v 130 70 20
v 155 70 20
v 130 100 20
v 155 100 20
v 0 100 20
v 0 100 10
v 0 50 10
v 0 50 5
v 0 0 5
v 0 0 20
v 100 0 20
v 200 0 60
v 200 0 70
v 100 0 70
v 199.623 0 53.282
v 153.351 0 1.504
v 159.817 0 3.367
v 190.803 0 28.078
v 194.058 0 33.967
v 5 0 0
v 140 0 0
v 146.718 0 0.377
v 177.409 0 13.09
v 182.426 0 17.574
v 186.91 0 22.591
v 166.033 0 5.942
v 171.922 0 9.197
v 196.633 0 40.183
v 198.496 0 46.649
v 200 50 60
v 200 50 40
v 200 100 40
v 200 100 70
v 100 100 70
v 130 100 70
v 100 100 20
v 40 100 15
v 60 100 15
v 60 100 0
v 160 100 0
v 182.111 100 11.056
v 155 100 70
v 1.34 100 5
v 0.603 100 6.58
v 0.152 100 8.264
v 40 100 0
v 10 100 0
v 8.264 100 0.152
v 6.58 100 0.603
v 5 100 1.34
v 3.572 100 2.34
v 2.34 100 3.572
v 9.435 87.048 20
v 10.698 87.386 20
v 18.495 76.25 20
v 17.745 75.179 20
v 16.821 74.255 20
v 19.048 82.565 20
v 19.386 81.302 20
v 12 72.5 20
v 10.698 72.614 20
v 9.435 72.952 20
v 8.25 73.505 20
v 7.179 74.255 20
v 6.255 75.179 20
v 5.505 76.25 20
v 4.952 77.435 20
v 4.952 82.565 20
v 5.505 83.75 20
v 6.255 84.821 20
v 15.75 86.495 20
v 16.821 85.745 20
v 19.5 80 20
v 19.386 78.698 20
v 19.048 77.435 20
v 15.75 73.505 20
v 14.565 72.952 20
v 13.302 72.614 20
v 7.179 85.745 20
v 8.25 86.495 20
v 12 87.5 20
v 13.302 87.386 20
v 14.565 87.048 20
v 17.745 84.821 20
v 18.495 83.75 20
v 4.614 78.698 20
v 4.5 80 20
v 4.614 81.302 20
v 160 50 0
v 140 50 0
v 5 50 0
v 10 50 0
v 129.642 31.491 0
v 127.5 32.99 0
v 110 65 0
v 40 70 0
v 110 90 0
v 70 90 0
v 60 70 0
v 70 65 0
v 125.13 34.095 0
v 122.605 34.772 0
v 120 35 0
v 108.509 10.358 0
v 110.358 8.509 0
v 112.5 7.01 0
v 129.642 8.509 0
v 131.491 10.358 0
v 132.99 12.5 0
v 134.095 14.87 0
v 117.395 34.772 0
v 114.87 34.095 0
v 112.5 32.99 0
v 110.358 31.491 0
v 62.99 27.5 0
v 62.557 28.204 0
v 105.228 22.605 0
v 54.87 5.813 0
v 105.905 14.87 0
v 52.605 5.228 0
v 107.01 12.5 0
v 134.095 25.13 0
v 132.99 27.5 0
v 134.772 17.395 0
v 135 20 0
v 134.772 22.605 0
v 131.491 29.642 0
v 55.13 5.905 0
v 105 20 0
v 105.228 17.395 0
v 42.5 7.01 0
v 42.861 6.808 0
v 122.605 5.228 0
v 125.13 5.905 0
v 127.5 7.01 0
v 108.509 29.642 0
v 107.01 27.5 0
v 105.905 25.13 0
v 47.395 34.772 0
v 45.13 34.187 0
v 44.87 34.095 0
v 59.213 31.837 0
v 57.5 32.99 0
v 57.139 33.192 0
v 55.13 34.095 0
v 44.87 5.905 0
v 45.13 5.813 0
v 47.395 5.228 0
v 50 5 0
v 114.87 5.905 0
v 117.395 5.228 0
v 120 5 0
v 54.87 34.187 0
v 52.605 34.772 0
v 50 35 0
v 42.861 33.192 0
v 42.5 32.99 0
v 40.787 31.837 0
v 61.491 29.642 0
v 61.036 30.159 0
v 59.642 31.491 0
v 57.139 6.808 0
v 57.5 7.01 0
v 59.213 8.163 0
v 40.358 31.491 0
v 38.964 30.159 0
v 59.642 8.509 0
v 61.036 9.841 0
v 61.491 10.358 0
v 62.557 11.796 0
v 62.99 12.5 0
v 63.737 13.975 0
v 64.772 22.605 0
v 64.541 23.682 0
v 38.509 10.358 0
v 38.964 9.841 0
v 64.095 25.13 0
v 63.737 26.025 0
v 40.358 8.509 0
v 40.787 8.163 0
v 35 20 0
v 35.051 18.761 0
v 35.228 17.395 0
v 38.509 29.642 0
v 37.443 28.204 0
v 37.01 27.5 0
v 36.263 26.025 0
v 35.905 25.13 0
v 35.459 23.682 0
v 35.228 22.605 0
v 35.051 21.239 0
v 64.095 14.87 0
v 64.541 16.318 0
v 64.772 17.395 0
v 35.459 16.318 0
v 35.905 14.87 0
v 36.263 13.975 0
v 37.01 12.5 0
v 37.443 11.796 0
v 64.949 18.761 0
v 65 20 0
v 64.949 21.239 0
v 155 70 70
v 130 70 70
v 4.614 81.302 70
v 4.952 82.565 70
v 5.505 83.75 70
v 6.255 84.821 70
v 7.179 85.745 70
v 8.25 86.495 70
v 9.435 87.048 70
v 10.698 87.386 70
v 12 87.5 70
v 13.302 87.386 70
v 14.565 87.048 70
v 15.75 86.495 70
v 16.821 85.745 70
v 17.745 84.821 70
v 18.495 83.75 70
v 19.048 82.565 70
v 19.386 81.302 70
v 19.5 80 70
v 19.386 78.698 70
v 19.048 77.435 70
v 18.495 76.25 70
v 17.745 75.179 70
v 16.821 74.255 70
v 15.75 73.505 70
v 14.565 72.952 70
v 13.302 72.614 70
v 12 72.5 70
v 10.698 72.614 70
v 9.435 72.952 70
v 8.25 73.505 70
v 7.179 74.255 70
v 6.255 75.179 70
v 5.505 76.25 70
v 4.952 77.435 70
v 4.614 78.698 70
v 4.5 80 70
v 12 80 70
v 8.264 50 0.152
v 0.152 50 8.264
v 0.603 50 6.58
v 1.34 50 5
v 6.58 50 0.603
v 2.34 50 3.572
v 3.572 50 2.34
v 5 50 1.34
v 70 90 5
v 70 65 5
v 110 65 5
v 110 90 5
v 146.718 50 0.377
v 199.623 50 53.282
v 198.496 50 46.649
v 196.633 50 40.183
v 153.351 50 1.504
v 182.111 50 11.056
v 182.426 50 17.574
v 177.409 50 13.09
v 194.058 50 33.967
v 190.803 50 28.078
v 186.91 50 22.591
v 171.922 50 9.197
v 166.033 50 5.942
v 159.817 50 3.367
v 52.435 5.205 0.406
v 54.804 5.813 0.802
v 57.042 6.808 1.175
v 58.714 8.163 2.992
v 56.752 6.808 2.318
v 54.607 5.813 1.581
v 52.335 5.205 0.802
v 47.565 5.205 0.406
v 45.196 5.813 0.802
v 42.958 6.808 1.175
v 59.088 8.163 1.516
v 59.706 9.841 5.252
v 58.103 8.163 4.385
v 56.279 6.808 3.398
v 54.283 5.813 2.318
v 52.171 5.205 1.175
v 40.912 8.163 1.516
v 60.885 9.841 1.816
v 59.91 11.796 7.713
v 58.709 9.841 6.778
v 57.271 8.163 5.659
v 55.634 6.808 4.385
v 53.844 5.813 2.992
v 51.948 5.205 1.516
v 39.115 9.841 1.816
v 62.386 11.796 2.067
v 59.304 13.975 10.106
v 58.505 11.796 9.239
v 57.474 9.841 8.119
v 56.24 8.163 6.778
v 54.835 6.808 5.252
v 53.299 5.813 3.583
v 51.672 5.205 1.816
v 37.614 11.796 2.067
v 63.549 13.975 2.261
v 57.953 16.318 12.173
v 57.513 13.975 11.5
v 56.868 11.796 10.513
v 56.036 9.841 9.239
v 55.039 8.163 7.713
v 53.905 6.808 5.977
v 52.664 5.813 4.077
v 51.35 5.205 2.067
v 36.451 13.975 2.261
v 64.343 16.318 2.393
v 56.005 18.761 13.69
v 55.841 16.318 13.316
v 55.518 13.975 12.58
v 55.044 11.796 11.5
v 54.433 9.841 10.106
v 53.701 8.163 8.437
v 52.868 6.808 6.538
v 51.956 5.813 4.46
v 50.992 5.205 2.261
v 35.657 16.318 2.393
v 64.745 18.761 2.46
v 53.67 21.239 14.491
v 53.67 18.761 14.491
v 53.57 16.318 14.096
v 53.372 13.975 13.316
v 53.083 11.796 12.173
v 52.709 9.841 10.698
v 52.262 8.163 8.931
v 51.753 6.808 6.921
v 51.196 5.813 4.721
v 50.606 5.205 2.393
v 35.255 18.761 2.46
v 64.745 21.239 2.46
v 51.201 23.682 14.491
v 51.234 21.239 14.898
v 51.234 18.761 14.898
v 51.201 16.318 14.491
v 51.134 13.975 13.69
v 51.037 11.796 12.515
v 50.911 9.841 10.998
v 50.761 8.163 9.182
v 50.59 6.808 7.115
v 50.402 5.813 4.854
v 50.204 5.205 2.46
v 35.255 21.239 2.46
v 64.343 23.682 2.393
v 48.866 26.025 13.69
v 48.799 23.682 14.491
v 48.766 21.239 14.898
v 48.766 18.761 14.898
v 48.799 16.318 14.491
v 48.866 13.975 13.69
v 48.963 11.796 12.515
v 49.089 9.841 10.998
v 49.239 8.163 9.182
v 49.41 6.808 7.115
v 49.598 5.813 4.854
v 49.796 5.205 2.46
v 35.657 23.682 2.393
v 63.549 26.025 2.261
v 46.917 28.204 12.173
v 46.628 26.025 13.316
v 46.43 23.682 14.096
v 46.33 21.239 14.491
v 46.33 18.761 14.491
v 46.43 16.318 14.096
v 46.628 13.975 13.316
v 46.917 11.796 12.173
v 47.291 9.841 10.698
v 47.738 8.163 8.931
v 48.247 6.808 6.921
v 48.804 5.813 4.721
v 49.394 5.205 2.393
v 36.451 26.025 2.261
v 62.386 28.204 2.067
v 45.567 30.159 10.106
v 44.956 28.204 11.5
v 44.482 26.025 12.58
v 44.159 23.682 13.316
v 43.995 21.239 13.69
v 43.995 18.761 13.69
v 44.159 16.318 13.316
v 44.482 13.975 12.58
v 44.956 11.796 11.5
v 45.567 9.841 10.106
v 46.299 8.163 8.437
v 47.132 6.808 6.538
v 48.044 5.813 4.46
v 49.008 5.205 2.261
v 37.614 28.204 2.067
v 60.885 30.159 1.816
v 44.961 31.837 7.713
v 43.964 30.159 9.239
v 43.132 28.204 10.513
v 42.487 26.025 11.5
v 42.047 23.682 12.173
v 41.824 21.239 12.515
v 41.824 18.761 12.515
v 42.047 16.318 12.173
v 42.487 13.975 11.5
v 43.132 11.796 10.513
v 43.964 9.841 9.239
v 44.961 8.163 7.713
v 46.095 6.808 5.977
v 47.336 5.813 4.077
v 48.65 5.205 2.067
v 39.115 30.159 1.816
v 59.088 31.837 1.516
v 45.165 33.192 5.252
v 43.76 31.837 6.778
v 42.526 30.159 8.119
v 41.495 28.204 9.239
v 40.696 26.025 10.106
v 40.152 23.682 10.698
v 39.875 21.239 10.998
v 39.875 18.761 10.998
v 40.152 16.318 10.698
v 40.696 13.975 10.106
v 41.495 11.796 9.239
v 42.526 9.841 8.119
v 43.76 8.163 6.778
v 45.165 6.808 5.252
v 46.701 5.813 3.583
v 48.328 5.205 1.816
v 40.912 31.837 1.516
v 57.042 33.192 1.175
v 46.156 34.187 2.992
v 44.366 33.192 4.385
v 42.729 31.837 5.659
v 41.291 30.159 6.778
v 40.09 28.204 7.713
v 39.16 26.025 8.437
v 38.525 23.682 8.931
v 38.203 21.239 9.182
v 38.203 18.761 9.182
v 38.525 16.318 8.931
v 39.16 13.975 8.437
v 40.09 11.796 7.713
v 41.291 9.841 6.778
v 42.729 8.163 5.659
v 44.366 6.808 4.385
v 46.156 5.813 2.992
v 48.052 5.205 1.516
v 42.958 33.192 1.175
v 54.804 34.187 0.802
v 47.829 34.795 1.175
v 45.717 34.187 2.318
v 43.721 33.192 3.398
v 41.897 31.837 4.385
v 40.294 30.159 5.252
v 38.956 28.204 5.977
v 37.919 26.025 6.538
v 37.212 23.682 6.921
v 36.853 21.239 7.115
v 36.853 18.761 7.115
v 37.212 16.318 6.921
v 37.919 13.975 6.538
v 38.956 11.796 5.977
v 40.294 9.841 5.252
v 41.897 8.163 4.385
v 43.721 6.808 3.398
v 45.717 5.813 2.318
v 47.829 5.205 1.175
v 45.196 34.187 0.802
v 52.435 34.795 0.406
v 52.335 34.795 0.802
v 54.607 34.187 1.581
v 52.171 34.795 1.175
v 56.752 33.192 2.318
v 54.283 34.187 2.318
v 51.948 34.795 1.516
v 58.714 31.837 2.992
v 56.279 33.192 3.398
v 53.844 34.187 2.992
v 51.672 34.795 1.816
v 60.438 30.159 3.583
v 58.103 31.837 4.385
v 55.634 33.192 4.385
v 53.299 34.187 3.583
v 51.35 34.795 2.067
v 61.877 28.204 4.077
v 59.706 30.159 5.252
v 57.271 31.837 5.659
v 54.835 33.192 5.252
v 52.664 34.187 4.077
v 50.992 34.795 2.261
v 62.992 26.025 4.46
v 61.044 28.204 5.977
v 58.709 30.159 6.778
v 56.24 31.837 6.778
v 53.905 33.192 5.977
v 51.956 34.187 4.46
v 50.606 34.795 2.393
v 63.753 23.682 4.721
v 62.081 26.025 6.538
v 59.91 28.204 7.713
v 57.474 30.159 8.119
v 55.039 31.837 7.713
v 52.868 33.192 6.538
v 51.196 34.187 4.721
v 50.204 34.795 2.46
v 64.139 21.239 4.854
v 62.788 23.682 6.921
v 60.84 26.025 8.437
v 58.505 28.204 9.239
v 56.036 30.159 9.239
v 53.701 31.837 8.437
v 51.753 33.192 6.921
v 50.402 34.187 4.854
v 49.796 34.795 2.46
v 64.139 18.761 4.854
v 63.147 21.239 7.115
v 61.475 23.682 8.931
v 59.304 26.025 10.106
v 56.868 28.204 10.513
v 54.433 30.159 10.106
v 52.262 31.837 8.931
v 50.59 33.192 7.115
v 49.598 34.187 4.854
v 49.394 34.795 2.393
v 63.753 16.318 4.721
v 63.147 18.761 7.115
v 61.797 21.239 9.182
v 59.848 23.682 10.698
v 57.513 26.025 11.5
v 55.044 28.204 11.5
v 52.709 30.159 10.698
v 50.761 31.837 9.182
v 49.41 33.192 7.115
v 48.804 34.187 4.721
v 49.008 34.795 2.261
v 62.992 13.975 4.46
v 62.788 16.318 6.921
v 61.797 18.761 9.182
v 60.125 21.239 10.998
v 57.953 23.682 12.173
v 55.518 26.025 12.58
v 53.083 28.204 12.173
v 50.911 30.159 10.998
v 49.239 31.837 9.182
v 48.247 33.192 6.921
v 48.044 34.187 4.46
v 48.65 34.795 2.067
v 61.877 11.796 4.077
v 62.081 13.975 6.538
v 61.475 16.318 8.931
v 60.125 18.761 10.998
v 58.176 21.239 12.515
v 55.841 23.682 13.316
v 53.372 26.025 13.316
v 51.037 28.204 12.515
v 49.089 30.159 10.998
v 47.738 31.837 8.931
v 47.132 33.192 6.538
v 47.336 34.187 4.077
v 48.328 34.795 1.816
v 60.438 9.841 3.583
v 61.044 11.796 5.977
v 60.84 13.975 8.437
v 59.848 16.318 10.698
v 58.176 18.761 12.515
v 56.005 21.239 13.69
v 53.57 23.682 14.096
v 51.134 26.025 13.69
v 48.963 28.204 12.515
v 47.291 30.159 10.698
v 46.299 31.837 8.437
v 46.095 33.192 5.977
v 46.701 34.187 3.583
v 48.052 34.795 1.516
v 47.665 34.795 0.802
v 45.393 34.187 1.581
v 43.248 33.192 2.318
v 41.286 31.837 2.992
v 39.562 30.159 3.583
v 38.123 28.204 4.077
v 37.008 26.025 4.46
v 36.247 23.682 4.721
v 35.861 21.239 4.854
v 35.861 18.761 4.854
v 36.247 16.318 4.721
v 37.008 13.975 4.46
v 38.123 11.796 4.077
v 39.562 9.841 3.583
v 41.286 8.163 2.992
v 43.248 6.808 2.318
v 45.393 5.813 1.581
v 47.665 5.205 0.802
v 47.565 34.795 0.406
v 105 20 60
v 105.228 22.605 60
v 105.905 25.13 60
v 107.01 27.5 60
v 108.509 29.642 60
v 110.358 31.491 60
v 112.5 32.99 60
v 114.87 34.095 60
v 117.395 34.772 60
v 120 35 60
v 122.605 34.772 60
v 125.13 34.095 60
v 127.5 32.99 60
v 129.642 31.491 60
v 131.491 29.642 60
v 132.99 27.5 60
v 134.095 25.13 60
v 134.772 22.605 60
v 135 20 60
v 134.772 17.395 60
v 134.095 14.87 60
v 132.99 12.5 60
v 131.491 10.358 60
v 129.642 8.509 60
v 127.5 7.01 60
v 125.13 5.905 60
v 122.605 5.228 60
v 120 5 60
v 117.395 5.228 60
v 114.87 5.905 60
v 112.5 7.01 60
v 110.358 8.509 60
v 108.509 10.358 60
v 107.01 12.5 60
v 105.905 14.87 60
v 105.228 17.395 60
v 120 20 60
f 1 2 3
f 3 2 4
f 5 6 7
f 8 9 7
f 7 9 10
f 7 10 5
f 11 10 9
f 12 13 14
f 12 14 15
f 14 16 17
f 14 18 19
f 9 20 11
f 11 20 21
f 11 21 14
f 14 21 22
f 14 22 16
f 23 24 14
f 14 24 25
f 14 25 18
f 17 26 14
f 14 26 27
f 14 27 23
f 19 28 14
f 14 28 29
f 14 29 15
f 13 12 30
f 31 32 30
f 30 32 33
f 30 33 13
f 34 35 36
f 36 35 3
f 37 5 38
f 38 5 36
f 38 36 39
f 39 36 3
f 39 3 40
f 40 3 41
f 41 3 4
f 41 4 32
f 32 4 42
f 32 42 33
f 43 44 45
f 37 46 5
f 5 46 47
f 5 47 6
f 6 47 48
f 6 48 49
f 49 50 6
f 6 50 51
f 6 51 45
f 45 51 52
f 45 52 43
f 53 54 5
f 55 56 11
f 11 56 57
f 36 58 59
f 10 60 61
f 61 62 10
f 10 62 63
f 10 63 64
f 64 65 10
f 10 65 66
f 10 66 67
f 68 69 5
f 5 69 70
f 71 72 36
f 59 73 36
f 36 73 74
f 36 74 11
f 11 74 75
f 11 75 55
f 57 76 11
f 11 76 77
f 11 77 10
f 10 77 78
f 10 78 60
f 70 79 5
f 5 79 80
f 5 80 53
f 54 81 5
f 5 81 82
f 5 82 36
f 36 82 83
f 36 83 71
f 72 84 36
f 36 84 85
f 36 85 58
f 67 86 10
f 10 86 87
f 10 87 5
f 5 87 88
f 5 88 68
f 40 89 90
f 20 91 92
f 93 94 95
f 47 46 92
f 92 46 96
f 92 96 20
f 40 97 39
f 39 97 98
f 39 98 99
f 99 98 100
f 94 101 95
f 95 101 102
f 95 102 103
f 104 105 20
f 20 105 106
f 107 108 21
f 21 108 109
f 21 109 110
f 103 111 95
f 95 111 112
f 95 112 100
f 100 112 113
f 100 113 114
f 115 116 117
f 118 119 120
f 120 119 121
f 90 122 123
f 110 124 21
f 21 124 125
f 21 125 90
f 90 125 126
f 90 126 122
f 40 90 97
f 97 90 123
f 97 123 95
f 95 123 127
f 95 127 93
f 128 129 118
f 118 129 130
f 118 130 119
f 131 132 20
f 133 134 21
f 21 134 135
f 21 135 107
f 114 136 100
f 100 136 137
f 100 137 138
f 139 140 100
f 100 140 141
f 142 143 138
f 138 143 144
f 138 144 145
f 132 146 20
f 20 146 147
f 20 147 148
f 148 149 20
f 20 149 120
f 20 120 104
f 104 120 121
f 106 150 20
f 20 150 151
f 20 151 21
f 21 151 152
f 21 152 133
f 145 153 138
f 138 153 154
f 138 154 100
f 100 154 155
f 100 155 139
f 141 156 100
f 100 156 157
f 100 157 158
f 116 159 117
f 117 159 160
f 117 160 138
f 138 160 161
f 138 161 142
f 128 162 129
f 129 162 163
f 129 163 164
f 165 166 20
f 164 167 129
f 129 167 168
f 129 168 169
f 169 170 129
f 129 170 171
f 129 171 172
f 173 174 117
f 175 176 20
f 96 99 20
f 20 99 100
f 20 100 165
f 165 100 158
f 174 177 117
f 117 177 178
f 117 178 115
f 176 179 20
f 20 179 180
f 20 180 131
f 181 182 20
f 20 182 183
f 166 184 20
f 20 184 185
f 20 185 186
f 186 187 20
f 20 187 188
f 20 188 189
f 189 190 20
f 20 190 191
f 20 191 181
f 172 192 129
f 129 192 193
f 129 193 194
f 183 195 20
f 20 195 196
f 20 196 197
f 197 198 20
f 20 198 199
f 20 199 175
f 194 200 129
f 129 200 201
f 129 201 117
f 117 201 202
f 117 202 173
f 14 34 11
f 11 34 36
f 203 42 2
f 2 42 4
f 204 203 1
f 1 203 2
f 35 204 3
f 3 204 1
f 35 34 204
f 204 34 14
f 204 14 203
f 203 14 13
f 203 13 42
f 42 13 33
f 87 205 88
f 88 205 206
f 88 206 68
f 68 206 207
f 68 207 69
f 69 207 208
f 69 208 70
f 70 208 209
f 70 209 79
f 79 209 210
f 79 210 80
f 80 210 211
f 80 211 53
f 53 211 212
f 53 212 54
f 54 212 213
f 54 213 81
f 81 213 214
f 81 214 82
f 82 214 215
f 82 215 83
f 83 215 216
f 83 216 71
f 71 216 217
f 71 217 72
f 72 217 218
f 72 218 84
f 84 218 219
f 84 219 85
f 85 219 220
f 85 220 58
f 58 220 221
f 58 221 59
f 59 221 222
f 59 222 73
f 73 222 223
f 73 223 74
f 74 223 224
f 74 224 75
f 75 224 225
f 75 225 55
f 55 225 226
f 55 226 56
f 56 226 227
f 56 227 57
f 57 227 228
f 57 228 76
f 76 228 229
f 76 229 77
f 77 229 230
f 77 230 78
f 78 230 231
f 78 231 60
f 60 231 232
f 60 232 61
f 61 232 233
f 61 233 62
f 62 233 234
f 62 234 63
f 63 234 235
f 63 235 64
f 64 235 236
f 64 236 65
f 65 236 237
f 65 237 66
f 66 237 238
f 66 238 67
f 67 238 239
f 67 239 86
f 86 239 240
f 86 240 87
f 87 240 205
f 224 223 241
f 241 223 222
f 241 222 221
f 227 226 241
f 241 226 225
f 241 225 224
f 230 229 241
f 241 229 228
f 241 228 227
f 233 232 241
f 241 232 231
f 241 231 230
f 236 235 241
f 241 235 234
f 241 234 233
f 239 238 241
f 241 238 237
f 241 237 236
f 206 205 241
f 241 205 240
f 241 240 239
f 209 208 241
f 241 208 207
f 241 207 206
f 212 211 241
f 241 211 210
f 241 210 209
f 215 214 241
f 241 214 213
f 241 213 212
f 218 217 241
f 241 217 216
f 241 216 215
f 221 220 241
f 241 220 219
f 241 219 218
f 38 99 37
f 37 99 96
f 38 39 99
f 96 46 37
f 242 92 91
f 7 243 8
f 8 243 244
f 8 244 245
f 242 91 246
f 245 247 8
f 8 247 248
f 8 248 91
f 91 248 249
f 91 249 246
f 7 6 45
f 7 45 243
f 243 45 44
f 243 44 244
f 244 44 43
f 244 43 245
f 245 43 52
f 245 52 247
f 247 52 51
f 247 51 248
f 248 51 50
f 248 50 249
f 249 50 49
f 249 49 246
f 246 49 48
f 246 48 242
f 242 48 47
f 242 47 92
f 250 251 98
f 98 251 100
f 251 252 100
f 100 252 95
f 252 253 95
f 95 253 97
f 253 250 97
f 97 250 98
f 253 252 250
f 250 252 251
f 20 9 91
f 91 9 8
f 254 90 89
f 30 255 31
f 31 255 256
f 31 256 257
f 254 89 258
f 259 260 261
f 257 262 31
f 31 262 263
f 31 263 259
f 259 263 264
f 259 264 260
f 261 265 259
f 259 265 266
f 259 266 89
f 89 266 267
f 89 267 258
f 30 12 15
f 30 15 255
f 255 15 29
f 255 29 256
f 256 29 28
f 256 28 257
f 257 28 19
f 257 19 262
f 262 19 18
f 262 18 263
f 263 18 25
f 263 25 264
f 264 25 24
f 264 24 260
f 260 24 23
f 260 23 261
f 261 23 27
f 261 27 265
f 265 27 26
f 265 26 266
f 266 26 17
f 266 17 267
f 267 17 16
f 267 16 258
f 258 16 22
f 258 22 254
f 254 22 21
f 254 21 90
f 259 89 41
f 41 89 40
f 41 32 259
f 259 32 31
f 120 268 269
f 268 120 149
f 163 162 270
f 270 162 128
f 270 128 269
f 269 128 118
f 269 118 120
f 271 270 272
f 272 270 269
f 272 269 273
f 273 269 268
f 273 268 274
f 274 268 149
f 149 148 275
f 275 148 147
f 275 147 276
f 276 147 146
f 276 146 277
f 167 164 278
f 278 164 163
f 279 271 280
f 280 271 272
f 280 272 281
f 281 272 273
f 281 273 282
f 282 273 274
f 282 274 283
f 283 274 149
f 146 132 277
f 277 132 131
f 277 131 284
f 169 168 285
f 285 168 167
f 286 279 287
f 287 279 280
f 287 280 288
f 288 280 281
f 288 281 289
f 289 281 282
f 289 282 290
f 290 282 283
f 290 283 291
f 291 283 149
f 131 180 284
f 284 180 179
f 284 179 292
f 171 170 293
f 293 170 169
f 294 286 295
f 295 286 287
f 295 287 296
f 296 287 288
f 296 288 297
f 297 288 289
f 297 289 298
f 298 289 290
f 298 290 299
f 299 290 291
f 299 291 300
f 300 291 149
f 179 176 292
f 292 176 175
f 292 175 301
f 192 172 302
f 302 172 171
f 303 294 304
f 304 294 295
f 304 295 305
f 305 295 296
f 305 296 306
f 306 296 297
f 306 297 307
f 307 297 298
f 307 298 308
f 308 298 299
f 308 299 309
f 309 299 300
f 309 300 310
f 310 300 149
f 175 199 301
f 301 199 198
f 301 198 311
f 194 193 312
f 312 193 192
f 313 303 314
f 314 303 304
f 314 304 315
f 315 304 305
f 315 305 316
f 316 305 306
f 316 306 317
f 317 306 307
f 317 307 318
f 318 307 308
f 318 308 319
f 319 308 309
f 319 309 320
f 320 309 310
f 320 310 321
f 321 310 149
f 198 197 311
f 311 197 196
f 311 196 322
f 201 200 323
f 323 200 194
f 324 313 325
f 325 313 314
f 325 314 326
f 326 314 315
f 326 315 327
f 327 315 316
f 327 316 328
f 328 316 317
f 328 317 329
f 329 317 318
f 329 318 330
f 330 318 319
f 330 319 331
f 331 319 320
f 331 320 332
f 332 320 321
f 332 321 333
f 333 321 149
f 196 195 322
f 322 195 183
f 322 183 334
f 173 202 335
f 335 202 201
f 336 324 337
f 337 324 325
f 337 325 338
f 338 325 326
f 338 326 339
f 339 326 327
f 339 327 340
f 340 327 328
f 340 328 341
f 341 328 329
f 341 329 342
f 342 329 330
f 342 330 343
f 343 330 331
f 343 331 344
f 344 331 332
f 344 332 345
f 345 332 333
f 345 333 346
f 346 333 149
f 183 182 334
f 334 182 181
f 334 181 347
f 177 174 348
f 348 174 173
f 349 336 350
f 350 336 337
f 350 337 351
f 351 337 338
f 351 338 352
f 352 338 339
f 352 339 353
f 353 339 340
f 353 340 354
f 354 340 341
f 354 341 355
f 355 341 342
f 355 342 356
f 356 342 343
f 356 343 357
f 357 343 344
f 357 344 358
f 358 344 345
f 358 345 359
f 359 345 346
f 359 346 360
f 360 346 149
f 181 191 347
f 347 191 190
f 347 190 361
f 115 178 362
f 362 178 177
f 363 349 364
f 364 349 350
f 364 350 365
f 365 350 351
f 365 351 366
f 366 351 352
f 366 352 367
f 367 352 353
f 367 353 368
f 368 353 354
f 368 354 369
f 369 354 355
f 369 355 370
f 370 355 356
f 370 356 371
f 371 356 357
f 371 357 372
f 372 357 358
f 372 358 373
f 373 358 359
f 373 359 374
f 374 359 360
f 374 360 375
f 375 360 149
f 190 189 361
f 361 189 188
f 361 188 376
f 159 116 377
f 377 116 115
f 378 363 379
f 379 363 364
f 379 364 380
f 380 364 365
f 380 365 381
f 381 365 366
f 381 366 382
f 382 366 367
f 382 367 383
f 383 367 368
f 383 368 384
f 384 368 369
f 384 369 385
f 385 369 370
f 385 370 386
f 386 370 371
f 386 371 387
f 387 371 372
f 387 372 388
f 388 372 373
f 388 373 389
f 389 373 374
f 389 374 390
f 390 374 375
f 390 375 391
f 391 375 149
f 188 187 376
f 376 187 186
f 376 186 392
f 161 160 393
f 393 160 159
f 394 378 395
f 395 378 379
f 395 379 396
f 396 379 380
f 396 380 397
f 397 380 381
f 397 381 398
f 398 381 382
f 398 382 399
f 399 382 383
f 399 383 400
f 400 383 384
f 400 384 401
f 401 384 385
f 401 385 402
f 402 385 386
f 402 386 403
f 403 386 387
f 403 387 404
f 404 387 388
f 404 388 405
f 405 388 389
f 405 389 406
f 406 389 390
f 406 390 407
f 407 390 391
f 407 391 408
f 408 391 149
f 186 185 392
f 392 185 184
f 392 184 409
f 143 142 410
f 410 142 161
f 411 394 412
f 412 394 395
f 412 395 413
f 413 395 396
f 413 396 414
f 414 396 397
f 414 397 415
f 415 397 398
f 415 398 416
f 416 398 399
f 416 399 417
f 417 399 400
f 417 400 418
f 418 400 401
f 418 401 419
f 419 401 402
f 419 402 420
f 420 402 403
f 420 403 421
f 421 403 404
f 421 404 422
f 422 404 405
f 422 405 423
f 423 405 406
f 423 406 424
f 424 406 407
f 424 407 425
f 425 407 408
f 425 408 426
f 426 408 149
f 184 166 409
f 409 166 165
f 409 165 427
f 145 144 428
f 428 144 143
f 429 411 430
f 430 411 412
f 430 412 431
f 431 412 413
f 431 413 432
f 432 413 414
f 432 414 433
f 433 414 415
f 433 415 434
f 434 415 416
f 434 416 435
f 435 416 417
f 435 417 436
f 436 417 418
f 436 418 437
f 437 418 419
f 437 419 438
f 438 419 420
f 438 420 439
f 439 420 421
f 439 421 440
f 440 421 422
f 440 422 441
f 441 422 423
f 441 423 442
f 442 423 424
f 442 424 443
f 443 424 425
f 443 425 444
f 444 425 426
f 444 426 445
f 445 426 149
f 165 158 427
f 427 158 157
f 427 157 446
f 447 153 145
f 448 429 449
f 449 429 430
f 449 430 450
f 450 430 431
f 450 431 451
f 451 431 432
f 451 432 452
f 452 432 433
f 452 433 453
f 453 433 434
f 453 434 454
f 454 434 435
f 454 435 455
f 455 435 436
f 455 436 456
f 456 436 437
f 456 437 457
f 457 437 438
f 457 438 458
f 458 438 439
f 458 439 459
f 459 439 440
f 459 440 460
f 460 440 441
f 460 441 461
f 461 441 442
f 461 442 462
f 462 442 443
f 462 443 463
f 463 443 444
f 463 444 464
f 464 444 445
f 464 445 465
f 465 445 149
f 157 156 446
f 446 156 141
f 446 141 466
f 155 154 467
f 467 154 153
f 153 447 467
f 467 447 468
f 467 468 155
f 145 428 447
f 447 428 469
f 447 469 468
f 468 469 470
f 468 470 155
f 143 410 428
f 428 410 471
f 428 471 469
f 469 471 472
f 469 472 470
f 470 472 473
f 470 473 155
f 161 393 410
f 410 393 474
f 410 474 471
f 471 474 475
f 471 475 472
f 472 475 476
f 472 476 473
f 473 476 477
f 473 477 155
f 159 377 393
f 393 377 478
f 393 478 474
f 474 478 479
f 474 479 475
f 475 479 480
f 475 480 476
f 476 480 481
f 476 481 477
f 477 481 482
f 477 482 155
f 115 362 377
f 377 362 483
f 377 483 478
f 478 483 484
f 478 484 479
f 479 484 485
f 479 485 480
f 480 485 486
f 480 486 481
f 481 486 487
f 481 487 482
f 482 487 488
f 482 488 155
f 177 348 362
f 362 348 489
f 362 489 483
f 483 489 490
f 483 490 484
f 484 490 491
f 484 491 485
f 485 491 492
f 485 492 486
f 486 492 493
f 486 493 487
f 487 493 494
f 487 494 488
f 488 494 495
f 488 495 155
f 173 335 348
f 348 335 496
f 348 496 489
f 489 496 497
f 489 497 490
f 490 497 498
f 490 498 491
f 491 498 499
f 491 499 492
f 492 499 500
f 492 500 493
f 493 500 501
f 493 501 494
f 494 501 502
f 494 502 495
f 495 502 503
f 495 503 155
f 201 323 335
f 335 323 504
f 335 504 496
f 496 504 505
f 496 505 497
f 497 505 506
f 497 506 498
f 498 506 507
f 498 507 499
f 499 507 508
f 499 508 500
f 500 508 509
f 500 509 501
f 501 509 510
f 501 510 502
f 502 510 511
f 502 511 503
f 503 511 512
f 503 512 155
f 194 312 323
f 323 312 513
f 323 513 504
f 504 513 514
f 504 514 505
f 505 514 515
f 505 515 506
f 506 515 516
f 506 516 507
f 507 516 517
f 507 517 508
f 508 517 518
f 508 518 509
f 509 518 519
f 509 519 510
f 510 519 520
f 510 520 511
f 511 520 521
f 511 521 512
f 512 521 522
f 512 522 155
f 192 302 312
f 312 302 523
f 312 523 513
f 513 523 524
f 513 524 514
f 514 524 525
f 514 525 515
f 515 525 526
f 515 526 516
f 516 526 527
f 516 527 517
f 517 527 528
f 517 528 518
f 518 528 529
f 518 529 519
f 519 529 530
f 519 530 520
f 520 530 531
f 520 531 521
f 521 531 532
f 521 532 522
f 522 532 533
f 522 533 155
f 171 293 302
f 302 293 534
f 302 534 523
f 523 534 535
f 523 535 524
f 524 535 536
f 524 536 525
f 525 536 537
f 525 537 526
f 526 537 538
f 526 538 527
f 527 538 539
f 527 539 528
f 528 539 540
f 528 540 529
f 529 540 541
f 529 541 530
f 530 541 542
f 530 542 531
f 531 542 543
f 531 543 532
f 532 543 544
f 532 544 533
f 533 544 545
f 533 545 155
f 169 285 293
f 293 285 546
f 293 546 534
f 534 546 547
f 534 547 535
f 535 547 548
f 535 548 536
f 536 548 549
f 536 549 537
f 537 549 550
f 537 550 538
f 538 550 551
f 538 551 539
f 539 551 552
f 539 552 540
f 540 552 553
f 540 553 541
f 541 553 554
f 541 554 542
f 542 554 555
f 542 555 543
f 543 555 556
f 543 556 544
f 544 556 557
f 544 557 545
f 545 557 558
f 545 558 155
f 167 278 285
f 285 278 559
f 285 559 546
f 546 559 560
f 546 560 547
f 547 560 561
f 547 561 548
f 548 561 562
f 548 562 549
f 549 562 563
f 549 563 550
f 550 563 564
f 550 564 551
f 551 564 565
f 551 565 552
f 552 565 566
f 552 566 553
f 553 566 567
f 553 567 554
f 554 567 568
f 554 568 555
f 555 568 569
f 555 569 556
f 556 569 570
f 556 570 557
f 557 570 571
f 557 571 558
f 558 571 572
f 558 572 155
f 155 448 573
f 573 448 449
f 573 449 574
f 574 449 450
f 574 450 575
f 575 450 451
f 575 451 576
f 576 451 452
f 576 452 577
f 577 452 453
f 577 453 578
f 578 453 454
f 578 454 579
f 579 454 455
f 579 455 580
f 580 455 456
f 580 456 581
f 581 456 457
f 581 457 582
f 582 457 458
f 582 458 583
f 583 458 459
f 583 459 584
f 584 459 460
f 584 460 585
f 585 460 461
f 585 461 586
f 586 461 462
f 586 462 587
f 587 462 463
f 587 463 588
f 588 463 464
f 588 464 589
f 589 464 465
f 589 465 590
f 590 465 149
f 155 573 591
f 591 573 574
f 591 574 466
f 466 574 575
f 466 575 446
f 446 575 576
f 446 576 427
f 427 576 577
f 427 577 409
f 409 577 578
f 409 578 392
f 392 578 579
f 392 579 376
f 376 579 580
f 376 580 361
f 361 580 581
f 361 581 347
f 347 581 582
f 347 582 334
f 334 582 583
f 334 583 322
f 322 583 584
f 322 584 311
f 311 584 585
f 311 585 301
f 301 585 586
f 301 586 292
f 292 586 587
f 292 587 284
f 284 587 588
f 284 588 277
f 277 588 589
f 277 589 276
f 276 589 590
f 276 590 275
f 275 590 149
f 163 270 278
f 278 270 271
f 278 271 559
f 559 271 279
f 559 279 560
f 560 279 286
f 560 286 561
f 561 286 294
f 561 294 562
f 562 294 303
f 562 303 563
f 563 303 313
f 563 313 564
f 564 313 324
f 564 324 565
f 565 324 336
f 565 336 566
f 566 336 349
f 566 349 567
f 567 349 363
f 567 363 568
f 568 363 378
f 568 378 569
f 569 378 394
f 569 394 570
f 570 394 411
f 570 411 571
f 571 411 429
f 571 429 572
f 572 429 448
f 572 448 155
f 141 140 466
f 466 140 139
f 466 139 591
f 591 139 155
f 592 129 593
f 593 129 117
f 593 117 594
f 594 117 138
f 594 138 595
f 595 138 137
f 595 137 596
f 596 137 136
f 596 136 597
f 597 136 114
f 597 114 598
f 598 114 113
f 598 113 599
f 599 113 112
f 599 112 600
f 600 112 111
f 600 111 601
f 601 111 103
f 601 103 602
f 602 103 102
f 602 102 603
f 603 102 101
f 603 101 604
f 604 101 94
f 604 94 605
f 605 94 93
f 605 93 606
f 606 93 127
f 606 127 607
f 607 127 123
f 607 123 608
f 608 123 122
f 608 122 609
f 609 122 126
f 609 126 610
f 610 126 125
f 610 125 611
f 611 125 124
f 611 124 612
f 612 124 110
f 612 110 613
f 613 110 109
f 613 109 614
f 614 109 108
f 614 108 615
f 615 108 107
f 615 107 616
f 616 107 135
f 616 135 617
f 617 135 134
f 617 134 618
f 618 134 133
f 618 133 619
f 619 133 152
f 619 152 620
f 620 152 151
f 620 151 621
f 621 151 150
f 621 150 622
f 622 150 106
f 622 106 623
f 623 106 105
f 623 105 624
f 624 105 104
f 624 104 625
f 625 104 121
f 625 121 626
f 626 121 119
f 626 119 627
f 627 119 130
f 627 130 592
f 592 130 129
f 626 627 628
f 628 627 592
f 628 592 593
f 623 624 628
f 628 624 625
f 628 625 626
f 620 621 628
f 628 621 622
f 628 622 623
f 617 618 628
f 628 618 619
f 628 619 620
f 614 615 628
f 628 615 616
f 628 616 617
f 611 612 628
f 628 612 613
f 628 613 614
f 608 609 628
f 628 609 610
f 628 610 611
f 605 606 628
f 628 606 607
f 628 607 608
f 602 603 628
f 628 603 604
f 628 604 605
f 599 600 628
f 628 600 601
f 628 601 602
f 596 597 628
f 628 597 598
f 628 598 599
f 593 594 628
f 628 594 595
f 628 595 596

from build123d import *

# Parameters (mm, degrees)
SKICA1_W                 = 200
SKICA1_H                 = 100
P_IDAT_VYSUNUT_M1_DEPTH  = 20
P_IDAT_VYSUNUT_M2_DEPTH  = 50
SKICA7_R                 = 7.5
P_IDAT_VYSUNUT_M3_DEPTH  = 50
ODEBRAT_VYSUNUT_M3_DEPTH = 10
ZAOBLIT1_START           = 50
ZAOBLIT1_DEPTH           = 51
SKICA9_W                 = 40
SKICA9_H                 = 25
ODEBRAT_VYSUNUT_M4_DEPTH = 5
CHAMFER2_SIZE            = 5
FILLET2_DEPTH            = 50
CHAMFER3_SIZE            = 40
CHAMFER3_SIZE2           = 20
CHAMFER4_SIZE            = 20
SKETCH3_R                = 15
CUT_EXTRUDE2_DEPTH       = 60


with BuildPart() as part:
    # Skica1 → Přidat vysunutím1 (new body)
    with BuildSketch(Plane.XY):
        with Locations((100, 50)):
            Rectangle(SKICA1_W, SKICA1_H)
    extrude(amount=P_IDAT_VYSUNUT_M1_DEPTH)

    # Skica2 → Přidat vysunutím2 (add)
    with BuildSketch(Plane.XY.offset(20)):
        Polygon((100, 0), (200, 0), (200, 100), (155, 100), (155, 70), (130, 70), (130, 100), (100, 100), align=None)
    extrude(amount=P_IDAT_VYSUNUT_M2_DEPTH)

    # Skica7 → Přidat vysunutím3 (add)
    with BuildSketch(Plane.XY.offset(20)):
        with Locations(Location((12, 80, 0), (0, 0, 180))):
            Circle(SKICA7_R)
    extrude(amount=P_IDAT_VYSUNUT_M3_DEPTH)

    # Skica8 → Odebrat vysunutím3 (cut, symmetric)
    with BuildSketch(Plane.ZY.offset(-50)):
        Polygon((0, 100), (0, 70), (15, 100), align=None)
    extrude(amount=ODEBRAT_VYSUNUT_M3_DEPTH, both=True, mode=Mode.SUBTRACT)

    # Zaoblit1: read off the stored shape, not the designer's step
    # Zaoblit1 outline → Zaoblit1 (cut)
    with BuildSketch(Plane(origin=(0, 0, 0), x_dir=(1, 0, 0), z_dir=(0, 1, 0)).offset(ZAOBLIT1_START)):
        with BuildLine():
            ThreePointArc((0, -10), (2.928932188, -2.928932188), (10, 0))
            Line((10, 0), (0, 0))
            Line((0, 0), (0, -10))
        make_face()
    extrude(amount=ZAOBLIT1_DEPTH, mode=Mode.SUBTRACT)

    # Skica9 → Odebrat vysunutím4 (cut)
    with BuildSketch(Plane(origin=(0, 0, 0), x_dir=(-1, 0, 0), z_dir=(0, 0, -1))):
        with Locations((-90, 77.5)):
            Rectangle(SKICA9_W, SKICA9_H)
    extrude(amount=-ODEBRAT_VYSUNUT_M4_DEPTH, mode=Mode.SUBTRACT)

    # Chamfer2
    chamfer2_edges = [part.edges().sort_by_distance(p)[0] for p in [
        (0, 25, 0),
    ]]
    chamfer(chamfer2_edges, length=CHAMFER2_SIZE)

    # Fillet2: read off the stored shape, not the designer's step
    # Fillet2 outline → Fillet2 (cut)
    with BuildSketch(Plane(origin=(0, 0, 0), x_dir=(1, 0, 0), z_dir=(0, 1, 0))):
        with BuildLine():
            Line((200, 0), (140, 0))
            ThreePointArc((140, 0), (182.426406871, -17.573593129), (200, -60))
            Line((200, -60), (200, 0))
        make_face()
    extrude(amount=FILLET2_DEPTH, mode=Mode.SUBTRACT)

    # Chamfer3
    chamfer3_edges = [part.edges().sort_by_distance(p)[0] for p in [
        (200, 75, 0),
    ]]
    chamfer3_side = [part.faces().sort_by_distance(p)[0] for p in [
        (93.302047782, 51.38225256, 0),
    ]]
    chamfer(chamfer3_edges, length=CHAMFER3_SIZE, length2=CHAMFER3_SIZE2, reference=chamfer3_side[0])

    # Chamfer4
    chamfer4_edges = [part.edges().sort_by_distance(p)[0] for p in [
        (200, 75, 20),
    ]]
    chamfer(chamfer4_edges, length=CHAMFER4_SIZE)

    # Sketch2 → Cut-Revolve4 (revolve, cut)
    with BuildSketch(Plane(origin=(0, 0, 0), x_dir=(-1, 0, 0), z_dir=(0, 0, -1))):
        with BuildLine():
            Line((-50, 35), (-50, 5))
            ThreePointArc((-50, 5), (-35, 20), (-50, 35))
        make_face()
    revolve(axis=Axis((50, 35, 0), (0, -1, 0)), mode=Mode.SUBTRACT)

    # Sketch3 → Cut-Extrude2 (cut)
    with BuildSketch(Plane(origin=(0, 0, 0), x_dir=(-1, 0, 0), z_dir=(0, 0, -1))):
        with Locations((-120, 20)):
            Circle(SKETCH3_R)
    extrude(amount=-CUT_EXTRUDE2_DEPTH, mode=Mode.SUBTRACT)


solid = part.part
